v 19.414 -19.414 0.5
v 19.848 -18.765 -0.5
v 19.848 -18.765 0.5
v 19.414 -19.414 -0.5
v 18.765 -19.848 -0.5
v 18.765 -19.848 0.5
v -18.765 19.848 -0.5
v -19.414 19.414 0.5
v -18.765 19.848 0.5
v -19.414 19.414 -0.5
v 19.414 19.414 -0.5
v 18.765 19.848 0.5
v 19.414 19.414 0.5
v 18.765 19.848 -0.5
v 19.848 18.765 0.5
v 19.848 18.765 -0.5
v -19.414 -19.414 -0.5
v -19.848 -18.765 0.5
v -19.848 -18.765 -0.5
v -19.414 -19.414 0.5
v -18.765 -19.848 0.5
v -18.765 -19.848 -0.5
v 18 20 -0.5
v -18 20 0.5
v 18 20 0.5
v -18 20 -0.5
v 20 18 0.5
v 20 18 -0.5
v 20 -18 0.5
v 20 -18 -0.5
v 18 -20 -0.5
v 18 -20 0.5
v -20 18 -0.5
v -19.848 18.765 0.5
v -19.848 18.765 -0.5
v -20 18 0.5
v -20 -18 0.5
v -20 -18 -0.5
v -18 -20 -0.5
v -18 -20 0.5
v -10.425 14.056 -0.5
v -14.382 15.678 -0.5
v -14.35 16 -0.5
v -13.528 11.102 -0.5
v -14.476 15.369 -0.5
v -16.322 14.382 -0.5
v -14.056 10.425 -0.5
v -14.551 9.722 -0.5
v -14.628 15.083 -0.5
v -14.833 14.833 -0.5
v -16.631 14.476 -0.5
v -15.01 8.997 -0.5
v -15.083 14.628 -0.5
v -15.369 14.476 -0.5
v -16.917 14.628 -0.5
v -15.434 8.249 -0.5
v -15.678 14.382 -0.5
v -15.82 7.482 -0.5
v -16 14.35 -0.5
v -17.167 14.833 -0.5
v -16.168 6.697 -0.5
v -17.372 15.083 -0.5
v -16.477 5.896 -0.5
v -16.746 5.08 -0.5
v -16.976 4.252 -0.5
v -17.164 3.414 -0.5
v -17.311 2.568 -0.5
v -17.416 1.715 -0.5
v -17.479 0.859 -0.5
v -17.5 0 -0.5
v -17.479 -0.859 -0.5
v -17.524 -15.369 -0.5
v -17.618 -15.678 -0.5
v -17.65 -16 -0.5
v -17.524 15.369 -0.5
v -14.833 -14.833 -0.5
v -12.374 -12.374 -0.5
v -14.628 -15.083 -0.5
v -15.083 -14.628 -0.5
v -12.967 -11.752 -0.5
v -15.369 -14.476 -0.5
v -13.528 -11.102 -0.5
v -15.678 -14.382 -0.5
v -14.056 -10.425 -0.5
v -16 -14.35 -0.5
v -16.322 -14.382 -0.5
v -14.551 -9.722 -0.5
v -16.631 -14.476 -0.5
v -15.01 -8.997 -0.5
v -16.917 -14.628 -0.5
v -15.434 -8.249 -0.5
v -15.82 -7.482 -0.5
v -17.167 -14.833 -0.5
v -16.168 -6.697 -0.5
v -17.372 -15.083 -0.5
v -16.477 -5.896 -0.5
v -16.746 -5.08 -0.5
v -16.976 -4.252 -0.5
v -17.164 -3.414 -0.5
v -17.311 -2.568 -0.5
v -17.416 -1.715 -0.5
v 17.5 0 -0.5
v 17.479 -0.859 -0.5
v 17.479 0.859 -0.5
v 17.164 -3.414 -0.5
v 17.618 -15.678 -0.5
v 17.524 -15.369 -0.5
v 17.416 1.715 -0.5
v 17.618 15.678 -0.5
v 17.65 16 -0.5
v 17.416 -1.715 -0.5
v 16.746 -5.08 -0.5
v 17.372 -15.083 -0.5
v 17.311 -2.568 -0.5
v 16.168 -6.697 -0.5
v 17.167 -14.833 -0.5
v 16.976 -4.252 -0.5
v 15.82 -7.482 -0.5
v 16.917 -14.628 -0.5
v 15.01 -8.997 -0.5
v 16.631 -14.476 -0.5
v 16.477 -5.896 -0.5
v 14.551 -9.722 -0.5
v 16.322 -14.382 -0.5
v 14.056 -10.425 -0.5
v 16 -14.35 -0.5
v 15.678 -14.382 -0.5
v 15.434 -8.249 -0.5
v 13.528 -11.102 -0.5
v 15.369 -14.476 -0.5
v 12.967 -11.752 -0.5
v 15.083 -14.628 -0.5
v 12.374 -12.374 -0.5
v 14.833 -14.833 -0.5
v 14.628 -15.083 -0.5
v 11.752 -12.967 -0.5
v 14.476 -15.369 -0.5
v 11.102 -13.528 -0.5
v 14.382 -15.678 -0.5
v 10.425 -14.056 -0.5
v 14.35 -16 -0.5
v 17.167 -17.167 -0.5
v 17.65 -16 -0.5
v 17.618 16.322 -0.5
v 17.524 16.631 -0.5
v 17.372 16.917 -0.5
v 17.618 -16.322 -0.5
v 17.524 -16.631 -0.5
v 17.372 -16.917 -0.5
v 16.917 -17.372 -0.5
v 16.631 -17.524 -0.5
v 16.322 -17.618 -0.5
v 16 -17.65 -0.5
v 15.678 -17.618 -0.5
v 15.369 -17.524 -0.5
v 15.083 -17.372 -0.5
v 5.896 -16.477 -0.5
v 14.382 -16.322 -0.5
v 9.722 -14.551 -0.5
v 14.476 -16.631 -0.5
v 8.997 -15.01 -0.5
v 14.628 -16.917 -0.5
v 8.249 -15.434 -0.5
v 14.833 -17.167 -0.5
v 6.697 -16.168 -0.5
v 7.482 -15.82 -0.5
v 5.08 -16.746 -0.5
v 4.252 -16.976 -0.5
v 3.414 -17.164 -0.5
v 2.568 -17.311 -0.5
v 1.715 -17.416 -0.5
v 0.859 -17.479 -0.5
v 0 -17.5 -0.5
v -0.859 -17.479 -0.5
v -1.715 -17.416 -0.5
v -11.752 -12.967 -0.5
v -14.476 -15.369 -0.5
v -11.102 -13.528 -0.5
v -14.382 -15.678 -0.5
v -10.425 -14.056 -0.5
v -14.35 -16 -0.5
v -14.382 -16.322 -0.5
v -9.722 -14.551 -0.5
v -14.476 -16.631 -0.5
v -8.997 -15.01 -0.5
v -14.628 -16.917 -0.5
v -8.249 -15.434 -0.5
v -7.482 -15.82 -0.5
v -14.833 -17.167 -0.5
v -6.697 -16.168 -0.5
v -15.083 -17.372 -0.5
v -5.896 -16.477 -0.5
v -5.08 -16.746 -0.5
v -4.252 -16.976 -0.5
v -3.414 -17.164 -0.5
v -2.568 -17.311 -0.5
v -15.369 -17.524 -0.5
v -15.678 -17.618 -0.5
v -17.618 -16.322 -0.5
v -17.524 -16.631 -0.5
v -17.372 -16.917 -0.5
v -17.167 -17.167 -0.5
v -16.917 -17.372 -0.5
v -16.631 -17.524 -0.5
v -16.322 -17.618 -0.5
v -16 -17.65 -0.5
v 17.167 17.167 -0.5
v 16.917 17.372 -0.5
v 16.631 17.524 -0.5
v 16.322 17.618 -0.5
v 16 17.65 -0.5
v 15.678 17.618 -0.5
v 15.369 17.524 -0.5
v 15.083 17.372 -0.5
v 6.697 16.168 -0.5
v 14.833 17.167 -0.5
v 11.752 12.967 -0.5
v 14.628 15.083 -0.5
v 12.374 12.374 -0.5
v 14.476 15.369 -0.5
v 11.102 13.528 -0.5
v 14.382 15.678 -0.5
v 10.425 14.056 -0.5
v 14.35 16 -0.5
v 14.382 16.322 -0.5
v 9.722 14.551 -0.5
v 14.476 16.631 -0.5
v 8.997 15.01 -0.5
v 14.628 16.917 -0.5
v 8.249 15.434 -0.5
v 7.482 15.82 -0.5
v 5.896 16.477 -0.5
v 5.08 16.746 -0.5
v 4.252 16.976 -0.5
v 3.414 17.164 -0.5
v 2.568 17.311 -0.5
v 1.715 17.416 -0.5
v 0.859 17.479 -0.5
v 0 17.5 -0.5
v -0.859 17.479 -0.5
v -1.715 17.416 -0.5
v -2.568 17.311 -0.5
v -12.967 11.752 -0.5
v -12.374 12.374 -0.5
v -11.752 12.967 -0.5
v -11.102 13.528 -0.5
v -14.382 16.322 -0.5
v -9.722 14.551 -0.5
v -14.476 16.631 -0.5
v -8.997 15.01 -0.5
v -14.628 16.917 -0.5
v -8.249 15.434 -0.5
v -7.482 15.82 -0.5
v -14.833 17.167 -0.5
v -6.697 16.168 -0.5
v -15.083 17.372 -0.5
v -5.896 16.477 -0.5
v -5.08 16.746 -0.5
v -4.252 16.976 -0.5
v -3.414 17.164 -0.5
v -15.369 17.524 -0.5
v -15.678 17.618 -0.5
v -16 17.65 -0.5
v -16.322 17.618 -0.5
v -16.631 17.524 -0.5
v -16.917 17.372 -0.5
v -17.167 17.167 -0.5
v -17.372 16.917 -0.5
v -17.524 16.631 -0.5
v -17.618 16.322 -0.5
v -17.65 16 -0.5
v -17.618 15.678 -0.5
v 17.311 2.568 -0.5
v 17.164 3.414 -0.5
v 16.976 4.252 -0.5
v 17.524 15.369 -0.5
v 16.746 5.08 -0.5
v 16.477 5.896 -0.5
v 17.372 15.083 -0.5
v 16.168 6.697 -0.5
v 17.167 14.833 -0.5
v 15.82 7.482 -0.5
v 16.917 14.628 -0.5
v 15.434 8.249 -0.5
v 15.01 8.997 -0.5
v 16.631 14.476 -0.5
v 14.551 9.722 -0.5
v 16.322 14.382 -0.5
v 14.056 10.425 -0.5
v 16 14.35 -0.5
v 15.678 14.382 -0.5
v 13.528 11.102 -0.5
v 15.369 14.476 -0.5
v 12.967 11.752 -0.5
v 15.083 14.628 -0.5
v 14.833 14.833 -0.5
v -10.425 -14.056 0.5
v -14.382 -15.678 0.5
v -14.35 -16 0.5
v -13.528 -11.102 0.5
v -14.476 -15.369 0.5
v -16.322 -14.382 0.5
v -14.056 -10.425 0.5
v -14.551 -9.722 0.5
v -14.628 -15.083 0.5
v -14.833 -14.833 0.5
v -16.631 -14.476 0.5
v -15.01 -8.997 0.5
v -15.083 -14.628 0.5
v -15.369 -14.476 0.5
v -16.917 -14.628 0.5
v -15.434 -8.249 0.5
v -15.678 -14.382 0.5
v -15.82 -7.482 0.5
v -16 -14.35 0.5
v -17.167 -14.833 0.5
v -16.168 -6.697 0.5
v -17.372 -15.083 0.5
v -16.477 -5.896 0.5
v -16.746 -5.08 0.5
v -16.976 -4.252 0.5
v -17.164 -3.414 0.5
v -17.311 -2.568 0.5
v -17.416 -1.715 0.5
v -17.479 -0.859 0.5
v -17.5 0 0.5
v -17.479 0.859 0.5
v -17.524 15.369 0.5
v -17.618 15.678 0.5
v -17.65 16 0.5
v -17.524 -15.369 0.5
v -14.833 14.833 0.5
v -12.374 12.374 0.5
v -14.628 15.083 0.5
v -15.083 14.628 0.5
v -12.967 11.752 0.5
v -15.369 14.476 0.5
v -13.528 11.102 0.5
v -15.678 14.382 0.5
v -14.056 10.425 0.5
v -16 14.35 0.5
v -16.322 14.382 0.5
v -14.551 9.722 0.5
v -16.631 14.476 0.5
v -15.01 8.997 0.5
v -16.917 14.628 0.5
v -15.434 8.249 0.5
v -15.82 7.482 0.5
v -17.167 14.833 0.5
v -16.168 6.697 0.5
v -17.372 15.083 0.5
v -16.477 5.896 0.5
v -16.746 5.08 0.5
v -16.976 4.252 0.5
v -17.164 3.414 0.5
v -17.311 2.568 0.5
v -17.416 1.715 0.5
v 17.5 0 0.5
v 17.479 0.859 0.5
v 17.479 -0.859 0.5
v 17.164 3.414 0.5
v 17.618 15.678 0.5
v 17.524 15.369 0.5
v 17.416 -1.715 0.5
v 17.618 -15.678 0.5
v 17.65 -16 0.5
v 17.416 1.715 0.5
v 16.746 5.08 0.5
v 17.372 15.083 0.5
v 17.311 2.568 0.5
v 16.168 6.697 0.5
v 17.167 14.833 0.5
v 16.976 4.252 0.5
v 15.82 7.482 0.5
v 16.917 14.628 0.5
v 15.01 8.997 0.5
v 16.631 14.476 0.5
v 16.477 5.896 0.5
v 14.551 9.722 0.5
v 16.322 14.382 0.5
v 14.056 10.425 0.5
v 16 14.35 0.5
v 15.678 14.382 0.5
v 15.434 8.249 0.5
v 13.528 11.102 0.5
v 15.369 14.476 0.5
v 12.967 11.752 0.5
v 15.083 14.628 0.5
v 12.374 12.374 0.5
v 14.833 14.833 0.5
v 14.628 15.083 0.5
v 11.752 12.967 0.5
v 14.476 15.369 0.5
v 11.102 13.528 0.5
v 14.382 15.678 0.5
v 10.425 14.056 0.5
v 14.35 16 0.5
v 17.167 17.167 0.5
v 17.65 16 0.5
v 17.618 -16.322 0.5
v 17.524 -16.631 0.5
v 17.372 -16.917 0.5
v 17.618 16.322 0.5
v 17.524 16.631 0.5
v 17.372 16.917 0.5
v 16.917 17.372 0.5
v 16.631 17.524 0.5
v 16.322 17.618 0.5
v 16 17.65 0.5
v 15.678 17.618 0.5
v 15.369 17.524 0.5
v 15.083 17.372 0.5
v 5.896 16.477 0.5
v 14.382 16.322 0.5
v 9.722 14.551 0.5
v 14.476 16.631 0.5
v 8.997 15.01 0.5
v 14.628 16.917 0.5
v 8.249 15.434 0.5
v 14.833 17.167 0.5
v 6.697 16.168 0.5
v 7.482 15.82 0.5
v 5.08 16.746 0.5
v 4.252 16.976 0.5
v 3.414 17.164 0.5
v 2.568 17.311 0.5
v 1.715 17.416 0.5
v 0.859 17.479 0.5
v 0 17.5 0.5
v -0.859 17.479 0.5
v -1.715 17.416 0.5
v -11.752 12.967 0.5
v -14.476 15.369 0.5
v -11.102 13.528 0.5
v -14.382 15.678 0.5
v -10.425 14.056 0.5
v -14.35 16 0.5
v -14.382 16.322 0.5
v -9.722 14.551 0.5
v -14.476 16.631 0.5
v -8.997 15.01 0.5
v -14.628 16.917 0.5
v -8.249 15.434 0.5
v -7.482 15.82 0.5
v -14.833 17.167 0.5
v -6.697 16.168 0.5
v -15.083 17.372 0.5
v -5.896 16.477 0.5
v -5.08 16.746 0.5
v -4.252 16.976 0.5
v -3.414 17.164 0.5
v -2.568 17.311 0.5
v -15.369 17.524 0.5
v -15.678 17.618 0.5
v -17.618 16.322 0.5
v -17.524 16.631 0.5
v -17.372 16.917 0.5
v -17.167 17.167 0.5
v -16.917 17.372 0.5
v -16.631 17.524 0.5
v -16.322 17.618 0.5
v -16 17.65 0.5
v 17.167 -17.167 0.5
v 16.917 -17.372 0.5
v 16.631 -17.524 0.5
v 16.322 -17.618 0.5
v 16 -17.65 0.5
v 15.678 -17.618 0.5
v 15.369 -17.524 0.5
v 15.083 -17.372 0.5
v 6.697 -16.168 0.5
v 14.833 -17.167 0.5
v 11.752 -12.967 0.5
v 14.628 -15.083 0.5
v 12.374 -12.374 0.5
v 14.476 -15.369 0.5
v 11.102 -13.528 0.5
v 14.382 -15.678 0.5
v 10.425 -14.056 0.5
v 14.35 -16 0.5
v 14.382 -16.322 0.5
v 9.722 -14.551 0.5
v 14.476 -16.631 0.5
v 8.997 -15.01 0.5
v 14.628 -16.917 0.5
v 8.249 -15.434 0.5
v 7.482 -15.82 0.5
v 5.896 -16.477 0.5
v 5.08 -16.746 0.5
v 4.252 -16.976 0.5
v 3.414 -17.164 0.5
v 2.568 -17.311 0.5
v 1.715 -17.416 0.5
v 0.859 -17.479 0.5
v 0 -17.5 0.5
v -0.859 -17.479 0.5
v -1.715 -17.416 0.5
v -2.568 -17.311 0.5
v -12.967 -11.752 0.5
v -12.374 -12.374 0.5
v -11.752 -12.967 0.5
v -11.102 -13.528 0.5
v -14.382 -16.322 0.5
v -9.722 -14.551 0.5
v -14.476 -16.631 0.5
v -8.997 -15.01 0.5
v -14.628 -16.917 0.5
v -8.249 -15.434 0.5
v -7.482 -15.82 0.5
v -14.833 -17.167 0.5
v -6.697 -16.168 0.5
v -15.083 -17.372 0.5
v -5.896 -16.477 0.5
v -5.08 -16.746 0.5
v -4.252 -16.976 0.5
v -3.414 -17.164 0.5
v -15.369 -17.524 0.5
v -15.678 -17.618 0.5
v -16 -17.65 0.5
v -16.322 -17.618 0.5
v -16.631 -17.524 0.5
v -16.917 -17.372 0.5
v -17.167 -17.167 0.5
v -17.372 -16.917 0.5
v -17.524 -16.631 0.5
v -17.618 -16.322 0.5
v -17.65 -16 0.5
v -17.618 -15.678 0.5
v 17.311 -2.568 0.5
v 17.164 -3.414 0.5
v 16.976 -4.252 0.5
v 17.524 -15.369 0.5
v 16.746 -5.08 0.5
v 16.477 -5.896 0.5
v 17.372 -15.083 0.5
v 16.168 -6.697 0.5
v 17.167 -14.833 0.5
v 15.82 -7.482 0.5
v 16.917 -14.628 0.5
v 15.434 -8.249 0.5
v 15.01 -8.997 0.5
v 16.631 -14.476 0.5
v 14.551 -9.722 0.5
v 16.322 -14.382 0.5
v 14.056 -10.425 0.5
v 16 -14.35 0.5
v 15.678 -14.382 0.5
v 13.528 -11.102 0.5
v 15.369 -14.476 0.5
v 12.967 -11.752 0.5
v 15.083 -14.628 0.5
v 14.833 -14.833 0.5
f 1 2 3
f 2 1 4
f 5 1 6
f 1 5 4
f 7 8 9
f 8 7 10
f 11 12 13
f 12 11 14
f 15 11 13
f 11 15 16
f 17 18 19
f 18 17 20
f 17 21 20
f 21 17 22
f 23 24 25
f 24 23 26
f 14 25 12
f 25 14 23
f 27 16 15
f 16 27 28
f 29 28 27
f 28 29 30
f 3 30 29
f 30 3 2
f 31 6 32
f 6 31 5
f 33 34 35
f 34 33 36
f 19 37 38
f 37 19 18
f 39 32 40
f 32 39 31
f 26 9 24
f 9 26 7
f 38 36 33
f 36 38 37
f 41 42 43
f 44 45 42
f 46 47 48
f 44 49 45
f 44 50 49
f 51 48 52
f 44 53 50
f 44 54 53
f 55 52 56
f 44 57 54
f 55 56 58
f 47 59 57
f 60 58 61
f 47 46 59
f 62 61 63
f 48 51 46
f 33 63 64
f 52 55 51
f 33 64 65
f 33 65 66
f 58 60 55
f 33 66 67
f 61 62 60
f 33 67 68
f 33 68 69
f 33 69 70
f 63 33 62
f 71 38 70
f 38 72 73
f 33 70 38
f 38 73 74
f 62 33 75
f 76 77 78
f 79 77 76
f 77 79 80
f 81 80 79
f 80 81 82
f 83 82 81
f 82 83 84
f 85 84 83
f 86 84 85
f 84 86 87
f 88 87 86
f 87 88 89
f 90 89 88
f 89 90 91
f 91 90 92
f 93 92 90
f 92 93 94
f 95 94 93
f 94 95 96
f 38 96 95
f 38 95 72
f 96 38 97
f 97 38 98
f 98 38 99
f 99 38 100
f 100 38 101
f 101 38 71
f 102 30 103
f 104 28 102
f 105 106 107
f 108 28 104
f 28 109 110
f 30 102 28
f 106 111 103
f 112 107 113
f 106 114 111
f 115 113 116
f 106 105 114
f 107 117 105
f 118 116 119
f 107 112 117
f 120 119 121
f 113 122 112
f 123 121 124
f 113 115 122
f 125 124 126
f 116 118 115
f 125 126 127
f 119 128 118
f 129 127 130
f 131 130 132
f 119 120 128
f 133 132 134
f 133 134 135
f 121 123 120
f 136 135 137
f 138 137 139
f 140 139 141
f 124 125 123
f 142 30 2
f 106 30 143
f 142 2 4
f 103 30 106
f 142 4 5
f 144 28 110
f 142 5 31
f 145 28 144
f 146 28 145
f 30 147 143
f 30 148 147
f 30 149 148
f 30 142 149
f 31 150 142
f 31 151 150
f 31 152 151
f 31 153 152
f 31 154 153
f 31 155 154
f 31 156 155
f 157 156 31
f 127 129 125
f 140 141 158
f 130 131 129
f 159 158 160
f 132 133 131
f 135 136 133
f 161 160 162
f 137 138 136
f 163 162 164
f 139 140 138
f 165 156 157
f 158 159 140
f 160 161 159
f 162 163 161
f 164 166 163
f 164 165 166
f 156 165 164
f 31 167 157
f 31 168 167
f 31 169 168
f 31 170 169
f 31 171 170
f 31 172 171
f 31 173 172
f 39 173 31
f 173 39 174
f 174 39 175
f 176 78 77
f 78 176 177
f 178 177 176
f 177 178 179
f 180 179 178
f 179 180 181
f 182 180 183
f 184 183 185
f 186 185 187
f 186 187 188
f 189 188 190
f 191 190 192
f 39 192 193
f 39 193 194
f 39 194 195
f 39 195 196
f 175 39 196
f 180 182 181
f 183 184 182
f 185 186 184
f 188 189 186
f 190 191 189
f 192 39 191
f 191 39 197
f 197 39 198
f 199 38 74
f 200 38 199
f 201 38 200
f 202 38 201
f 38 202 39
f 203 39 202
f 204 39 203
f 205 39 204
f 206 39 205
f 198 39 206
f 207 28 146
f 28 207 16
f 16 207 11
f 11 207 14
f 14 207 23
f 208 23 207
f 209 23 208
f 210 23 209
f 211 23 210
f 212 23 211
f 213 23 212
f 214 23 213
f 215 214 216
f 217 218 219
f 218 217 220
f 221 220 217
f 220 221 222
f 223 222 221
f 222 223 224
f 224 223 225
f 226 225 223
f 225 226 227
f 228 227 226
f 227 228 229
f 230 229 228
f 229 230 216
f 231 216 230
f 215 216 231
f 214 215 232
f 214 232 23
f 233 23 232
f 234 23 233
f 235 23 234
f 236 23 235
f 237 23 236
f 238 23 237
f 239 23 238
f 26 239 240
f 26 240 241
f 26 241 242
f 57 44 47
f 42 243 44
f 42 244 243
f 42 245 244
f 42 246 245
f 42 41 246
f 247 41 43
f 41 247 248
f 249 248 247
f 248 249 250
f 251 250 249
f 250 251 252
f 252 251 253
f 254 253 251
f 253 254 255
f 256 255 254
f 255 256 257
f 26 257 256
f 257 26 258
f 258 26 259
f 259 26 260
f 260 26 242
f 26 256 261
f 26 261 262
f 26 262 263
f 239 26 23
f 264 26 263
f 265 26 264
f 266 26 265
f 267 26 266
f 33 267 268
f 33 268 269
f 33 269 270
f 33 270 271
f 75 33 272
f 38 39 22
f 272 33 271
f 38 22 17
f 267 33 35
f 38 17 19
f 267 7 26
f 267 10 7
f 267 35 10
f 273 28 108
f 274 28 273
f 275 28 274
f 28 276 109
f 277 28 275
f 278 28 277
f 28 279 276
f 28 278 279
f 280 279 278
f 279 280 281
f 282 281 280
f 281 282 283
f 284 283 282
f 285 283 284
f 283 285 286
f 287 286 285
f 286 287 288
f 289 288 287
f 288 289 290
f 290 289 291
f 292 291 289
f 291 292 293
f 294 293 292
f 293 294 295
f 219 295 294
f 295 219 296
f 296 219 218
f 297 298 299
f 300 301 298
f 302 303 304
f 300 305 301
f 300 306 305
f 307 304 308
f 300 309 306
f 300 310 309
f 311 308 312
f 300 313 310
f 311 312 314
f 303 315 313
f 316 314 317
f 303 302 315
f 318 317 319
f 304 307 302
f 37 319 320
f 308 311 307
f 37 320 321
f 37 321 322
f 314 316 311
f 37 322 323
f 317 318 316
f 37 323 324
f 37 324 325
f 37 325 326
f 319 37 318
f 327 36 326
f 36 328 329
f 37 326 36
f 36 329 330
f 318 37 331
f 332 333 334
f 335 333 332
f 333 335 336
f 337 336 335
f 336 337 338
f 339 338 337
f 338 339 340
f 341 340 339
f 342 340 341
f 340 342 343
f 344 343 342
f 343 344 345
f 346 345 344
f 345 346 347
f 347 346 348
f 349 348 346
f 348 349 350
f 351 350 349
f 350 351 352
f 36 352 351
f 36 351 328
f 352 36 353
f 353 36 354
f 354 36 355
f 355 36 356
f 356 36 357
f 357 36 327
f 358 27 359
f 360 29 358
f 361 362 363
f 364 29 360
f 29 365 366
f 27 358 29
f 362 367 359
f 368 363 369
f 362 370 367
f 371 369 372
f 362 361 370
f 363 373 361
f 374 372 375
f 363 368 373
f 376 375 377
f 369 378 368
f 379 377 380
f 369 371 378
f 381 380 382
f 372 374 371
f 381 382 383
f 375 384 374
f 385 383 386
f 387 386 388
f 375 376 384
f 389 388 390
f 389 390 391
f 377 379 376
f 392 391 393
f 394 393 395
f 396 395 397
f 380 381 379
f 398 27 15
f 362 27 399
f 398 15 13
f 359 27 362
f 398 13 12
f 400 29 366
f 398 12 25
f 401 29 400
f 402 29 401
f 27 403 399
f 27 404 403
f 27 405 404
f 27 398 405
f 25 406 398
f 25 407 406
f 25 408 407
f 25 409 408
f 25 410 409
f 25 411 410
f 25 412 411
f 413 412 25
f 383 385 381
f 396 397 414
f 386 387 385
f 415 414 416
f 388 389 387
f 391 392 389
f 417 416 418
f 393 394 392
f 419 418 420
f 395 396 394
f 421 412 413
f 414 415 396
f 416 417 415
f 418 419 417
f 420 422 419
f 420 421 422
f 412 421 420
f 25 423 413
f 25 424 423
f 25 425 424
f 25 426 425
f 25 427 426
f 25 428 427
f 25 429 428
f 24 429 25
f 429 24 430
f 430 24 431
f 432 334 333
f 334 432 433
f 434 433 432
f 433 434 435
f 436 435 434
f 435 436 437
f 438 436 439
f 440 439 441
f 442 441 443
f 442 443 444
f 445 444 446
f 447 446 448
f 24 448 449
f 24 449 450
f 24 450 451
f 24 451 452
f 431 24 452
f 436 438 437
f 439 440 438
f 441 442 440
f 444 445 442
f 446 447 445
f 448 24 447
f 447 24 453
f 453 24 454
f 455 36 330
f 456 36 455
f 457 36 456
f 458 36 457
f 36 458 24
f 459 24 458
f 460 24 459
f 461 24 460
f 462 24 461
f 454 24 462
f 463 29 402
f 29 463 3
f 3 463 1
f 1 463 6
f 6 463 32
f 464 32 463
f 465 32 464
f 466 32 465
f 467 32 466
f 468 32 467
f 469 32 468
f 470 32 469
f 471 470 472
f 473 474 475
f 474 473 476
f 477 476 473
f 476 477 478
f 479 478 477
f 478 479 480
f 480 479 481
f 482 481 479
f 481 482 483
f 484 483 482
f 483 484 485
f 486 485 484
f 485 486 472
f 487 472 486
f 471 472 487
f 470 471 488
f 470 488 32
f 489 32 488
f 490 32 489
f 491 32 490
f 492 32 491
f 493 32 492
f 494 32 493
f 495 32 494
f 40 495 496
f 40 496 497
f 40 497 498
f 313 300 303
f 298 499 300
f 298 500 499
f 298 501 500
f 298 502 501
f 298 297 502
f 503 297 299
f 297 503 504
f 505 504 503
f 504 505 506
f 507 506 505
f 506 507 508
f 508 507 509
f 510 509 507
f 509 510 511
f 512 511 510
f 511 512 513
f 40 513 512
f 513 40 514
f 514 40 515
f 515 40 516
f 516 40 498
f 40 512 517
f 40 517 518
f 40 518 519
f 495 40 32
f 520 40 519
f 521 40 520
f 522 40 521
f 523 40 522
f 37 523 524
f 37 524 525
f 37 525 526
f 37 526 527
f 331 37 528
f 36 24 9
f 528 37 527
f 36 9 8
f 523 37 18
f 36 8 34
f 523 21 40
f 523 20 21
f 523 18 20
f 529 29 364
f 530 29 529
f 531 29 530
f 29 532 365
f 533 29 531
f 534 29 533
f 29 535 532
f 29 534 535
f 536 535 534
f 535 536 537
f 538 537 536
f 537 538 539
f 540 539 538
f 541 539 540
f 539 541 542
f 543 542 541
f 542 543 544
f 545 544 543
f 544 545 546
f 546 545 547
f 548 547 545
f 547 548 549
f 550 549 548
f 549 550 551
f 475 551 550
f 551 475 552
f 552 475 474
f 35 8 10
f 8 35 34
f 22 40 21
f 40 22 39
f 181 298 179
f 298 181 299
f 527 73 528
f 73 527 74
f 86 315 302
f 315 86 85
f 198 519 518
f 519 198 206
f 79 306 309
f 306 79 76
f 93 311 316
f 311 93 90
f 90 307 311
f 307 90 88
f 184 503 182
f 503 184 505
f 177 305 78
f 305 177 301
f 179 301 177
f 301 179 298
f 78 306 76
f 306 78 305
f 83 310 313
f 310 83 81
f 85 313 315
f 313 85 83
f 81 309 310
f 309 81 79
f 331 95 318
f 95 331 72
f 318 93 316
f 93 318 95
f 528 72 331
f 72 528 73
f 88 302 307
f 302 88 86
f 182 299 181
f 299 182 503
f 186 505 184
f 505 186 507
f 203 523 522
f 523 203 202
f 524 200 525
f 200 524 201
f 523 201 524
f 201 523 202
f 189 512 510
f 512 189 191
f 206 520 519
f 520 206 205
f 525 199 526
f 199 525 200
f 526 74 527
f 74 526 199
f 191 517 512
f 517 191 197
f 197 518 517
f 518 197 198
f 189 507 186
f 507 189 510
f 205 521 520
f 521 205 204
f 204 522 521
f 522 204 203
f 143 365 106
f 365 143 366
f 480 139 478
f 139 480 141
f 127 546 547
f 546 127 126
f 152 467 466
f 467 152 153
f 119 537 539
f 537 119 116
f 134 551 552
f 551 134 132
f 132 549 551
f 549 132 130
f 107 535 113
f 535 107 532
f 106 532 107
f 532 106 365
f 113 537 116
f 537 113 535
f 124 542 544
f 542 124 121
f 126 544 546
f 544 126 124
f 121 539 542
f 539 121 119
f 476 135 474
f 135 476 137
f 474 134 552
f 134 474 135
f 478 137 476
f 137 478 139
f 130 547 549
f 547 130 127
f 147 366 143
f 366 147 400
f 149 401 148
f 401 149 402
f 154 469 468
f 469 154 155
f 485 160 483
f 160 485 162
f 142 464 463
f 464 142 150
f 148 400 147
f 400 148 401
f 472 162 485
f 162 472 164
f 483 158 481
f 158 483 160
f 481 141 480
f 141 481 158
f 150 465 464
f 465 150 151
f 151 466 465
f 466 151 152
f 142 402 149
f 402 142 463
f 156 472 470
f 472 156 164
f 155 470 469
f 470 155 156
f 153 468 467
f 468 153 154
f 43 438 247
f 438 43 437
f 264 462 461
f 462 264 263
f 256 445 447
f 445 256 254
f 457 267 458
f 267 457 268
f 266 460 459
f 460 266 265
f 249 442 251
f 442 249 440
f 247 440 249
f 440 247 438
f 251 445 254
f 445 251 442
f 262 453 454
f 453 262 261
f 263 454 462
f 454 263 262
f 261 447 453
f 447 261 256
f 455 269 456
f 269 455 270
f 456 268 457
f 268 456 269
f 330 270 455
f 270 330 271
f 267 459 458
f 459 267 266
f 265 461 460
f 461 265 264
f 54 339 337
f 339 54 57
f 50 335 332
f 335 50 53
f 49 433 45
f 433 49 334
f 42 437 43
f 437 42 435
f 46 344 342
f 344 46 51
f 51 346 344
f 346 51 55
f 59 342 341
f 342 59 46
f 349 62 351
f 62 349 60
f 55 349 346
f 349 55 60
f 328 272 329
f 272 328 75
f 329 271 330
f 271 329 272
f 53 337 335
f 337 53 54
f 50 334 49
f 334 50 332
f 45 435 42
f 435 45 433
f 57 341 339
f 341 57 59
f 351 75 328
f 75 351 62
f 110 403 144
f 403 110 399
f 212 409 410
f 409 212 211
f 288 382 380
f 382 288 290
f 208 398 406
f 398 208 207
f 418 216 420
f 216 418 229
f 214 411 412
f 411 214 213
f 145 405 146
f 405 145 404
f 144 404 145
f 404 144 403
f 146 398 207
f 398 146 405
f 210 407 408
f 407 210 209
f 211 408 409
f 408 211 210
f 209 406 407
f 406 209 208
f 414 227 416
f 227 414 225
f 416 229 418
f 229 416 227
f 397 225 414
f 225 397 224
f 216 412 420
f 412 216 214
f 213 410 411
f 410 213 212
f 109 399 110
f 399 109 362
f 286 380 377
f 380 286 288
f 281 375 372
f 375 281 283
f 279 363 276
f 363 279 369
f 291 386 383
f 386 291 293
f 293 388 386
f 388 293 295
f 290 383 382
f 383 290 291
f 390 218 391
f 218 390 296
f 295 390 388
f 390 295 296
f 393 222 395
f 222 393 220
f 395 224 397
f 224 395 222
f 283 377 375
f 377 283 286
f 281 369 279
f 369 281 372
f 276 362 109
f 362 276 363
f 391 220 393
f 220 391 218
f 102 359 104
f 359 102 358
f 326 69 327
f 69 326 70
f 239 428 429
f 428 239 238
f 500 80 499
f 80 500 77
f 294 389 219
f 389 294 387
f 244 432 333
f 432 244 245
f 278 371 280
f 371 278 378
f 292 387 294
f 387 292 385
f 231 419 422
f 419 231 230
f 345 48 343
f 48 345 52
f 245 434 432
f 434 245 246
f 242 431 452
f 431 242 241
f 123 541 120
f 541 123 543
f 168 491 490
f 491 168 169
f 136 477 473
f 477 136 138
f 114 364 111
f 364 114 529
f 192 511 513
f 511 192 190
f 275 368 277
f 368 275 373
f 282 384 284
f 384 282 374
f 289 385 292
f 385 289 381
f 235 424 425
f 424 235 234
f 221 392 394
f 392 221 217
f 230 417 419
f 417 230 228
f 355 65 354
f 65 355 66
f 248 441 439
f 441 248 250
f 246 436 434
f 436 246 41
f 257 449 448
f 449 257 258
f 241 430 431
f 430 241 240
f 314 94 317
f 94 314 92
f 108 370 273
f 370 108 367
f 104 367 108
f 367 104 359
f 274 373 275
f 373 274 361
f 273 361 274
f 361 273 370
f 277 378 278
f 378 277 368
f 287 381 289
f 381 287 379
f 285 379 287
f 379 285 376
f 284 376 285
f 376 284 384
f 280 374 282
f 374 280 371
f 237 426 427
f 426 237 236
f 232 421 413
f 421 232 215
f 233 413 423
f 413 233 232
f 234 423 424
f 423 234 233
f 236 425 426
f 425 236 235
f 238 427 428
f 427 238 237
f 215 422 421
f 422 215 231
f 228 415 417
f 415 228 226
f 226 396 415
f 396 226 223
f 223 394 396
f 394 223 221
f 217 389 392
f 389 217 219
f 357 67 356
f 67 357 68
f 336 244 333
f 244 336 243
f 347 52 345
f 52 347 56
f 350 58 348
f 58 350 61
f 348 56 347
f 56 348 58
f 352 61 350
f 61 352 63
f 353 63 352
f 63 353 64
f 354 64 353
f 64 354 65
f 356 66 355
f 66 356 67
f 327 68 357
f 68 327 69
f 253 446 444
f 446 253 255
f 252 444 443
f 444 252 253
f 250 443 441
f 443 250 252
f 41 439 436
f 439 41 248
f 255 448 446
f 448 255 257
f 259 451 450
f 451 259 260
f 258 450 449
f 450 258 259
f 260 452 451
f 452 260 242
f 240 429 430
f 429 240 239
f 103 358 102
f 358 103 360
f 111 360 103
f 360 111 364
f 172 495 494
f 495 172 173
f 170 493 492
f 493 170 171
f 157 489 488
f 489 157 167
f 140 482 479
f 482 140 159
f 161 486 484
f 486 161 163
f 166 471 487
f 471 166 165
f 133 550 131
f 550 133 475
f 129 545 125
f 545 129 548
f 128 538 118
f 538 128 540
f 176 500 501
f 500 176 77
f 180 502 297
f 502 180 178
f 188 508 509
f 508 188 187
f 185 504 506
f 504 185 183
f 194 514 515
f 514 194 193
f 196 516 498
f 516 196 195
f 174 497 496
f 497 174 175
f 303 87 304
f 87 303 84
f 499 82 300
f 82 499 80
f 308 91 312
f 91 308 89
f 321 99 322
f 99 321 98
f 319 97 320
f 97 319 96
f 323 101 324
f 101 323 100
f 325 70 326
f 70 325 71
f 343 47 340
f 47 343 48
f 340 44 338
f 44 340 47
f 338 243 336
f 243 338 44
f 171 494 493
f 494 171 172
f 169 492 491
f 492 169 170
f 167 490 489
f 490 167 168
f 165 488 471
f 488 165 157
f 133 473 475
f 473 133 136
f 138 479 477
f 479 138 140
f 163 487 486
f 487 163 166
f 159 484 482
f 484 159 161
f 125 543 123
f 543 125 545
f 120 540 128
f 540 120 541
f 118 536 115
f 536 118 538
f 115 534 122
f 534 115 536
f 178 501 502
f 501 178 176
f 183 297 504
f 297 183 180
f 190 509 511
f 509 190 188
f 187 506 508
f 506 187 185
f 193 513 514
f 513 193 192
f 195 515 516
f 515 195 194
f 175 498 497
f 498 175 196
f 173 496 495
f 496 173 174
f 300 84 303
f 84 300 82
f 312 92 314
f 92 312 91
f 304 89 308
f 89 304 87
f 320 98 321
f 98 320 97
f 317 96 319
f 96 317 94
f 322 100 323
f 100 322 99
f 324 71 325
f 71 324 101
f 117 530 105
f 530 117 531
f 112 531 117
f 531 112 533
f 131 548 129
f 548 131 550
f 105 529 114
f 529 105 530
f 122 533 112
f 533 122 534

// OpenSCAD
difference() {
    minkowski() {
        cylinder(d=4,h=0.001,$fn=16, center=true);
        cube([36,36,1], center=true);
    }
    
    translate([-16,-16,0])
    cylinder(d=3.3,h=5,$fn=32, center=true);
    
    translate([16,-16,0])
    cylinder(d=3.3,h=5,$fn=32, center=true);
    
    translate([-16,16,0])
    cylinder(d=3.3,h=5,$fn=32, center=true);
    
    translate([16,16,0])
    cylinder(d=3.3,h=5,$fn=32, center=true);
    
    cylinder(d=35,h=5,$fn=128, center=true);
}
